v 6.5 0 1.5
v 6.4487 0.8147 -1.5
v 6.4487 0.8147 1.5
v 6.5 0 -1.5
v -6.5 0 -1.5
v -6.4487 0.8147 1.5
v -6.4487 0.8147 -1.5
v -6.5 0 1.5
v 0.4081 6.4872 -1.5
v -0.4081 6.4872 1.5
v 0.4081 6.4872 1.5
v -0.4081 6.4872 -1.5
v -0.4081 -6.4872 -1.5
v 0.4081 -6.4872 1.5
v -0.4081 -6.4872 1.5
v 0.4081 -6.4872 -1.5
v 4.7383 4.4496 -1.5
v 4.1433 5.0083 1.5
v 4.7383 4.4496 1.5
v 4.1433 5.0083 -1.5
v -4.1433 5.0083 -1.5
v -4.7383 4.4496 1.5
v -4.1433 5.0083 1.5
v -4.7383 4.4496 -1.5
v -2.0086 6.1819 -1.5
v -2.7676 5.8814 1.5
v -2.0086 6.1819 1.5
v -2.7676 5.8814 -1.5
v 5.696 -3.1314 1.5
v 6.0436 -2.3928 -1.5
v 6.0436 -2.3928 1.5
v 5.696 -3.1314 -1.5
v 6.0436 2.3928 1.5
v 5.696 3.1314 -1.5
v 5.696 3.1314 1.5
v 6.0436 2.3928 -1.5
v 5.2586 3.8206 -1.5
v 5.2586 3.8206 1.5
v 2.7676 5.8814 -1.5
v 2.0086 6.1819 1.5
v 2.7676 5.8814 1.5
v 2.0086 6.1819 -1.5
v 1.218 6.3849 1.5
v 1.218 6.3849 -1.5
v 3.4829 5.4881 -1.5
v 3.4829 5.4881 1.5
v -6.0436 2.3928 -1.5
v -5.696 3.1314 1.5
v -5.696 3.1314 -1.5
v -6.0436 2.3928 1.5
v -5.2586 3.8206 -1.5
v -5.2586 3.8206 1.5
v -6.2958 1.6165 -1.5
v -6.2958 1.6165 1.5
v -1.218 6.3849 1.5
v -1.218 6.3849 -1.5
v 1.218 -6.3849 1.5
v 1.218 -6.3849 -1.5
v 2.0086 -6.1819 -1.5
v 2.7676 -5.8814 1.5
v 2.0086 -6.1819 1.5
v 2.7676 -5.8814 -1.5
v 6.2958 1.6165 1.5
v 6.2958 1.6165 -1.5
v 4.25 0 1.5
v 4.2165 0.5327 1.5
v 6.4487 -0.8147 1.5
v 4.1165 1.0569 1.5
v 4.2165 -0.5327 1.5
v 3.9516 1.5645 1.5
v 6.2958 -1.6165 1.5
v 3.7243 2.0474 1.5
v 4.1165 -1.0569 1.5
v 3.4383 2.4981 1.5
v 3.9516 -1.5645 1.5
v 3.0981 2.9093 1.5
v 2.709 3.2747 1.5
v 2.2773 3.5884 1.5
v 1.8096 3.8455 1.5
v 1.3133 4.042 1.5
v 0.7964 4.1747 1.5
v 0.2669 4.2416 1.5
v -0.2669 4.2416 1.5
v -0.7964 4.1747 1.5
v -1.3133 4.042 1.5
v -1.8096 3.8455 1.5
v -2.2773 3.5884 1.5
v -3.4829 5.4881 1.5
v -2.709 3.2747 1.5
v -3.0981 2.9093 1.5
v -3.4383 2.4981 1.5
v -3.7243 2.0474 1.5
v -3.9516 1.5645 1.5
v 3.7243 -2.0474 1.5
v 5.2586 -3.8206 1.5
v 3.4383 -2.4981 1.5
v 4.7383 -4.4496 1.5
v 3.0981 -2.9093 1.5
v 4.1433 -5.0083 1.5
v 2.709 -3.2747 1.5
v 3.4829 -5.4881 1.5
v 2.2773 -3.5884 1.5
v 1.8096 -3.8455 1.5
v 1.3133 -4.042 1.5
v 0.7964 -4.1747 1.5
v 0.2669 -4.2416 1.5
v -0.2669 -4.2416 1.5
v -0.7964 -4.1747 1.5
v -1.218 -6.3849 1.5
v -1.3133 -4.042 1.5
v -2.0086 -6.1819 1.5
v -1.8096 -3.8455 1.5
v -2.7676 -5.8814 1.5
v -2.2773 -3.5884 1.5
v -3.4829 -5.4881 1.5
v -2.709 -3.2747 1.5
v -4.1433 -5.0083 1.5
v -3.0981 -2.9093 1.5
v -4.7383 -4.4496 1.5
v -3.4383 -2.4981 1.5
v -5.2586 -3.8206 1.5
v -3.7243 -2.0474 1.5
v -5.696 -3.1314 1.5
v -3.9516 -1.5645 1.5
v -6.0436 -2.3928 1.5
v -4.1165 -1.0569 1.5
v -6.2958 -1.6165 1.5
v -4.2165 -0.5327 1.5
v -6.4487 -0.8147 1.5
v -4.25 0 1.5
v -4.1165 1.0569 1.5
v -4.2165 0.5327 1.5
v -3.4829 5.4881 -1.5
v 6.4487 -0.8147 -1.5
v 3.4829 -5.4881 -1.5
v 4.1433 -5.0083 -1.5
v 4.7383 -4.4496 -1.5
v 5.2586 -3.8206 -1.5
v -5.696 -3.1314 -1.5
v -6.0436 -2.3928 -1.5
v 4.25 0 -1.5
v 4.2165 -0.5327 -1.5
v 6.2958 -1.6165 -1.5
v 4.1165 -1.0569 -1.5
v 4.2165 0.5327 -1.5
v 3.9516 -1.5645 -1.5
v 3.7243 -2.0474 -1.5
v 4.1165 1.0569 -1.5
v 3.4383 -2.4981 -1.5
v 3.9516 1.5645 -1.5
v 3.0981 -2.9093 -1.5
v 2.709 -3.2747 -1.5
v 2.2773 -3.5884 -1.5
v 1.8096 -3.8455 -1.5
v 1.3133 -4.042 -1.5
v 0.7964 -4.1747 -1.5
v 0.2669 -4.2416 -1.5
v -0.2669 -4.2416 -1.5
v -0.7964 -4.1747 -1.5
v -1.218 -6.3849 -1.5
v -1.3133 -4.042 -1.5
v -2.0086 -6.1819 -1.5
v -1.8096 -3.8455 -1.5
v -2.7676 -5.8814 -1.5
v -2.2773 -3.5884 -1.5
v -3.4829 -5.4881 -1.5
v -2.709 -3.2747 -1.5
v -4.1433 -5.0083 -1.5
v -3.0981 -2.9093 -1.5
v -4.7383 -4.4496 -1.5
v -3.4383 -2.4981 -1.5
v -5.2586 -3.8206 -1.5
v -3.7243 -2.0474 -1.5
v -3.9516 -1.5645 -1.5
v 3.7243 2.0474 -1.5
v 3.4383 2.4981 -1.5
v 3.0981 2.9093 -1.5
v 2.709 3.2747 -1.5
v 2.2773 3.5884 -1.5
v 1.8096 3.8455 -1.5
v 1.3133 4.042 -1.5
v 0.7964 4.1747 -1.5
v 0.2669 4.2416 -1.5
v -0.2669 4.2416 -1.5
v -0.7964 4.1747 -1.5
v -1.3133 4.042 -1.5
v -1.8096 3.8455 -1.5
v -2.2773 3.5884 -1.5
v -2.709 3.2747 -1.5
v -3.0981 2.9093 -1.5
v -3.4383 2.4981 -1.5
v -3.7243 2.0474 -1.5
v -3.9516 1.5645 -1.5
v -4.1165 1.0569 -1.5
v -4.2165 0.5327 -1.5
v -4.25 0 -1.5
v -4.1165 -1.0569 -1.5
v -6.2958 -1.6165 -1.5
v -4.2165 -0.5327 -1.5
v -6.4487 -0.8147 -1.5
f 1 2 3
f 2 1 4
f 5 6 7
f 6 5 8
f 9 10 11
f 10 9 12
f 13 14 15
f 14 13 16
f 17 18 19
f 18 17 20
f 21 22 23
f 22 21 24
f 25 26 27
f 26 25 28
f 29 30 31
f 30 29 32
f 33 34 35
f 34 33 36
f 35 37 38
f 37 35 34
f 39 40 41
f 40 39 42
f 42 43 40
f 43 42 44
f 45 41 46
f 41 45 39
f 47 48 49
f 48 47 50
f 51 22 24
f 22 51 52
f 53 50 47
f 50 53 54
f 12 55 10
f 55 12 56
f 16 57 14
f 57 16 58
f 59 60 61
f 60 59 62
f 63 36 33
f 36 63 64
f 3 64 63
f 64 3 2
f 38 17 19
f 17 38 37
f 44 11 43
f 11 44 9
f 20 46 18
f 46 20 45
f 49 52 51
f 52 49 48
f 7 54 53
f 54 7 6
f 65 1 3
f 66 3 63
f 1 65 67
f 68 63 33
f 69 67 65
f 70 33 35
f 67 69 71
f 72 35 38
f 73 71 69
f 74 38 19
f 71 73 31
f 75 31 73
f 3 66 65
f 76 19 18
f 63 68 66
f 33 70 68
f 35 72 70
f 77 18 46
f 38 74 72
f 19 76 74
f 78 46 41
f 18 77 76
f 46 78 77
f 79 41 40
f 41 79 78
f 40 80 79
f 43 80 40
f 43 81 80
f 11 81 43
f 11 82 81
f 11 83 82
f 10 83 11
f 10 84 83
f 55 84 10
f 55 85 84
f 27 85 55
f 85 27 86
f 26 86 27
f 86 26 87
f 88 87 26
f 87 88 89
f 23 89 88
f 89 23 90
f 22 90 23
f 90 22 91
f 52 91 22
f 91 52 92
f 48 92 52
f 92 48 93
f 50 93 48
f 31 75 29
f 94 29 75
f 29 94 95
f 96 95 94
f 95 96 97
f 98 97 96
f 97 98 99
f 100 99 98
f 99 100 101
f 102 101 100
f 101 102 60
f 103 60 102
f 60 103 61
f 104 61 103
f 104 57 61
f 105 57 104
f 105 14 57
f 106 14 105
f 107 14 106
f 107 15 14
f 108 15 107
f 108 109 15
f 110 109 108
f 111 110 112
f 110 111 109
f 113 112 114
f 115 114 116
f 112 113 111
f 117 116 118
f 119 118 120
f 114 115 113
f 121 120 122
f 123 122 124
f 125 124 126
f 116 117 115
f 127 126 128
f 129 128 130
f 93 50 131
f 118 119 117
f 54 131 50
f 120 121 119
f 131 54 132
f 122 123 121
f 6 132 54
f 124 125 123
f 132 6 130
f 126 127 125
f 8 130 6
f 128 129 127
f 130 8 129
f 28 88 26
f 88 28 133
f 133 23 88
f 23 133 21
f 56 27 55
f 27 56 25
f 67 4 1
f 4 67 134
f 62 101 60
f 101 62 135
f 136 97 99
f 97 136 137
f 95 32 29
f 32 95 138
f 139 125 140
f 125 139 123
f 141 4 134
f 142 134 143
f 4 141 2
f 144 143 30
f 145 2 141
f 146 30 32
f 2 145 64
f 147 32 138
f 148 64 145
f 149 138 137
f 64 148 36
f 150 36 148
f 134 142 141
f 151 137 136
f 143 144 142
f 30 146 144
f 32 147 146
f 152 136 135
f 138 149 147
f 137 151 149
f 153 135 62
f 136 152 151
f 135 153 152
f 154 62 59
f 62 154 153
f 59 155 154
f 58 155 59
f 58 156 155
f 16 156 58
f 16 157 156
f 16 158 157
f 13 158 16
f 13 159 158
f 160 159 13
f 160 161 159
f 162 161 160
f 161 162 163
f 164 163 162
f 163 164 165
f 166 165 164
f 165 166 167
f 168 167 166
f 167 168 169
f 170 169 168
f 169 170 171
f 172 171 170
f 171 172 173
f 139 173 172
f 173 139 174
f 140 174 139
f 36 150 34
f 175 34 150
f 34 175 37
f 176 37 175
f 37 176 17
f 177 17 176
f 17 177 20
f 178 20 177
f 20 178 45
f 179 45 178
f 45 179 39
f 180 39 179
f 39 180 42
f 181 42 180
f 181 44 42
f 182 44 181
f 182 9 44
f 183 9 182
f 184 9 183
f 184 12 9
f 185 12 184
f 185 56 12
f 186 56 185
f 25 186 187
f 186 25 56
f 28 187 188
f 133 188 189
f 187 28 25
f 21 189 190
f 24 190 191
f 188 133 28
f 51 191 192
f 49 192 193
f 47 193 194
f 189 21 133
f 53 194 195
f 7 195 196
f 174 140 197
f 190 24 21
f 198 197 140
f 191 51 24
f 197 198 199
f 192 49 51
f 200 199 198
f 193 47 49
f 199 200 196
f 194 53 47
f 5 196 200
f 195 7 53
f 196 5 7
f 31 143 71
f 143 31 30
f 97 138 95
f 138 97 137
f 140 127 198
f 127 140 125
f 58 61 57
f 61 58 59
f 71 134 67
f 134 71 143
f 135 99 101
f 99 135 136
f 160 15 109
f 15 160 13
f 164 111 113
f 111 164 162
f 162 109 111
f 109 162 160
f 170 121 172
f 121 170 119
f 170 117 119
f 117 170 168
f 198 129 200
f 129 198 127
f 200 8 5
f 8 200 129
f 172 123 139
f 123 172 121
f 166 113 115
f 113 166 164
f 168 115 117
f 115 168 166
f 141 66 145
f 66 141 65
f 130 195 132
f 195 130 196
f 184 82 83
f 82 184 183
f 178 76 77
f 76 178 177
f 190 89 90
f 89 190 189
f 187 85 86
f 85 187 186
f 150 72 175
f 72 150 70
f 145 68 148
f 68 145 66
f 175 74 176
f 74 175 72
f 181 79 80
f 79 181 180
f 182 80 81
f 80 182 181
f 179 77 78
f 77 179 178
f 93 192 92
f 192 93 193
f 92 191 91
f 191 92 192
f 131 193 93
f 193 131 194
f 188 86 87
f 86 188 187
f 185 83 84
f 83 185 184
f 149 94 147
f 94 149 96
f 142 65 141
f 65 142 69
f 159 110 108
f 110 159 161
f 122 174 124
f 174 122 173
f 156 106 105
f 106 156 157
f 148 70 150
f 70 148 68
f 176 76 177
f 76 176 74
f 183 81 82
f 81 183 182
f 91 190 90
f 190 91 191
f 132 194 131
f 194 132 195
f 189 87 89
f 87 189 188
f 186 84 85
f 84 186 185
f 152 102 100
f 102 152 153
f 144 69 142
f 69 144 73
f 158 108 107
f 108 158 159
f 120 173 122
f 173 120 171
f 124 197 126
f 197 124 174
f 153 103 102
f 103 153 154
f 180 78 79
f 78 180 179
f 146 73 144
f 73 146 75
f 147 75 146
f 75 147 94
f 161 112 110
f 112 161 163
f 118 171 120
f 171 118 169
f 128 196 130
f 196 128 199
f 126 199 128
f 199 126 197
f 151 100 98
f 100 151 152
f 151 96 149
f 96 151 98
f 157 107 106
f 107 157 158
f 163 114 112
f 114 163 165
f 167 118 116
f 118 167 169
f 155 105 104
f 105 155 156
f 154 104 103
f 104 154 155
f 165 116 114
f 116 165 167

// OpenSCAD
$fn = 50;


difference() {
	union() {
		translate(v = [0, 0, -1.5000000000]) {
			cylinder(h = 3, r = 6.5000000000);
		}
	}
	union() {
		translate(v = [0, 0, -100.0000000000]) {
			cylinder(h = 200, r = 4.2500000000);
		}
	}
}
